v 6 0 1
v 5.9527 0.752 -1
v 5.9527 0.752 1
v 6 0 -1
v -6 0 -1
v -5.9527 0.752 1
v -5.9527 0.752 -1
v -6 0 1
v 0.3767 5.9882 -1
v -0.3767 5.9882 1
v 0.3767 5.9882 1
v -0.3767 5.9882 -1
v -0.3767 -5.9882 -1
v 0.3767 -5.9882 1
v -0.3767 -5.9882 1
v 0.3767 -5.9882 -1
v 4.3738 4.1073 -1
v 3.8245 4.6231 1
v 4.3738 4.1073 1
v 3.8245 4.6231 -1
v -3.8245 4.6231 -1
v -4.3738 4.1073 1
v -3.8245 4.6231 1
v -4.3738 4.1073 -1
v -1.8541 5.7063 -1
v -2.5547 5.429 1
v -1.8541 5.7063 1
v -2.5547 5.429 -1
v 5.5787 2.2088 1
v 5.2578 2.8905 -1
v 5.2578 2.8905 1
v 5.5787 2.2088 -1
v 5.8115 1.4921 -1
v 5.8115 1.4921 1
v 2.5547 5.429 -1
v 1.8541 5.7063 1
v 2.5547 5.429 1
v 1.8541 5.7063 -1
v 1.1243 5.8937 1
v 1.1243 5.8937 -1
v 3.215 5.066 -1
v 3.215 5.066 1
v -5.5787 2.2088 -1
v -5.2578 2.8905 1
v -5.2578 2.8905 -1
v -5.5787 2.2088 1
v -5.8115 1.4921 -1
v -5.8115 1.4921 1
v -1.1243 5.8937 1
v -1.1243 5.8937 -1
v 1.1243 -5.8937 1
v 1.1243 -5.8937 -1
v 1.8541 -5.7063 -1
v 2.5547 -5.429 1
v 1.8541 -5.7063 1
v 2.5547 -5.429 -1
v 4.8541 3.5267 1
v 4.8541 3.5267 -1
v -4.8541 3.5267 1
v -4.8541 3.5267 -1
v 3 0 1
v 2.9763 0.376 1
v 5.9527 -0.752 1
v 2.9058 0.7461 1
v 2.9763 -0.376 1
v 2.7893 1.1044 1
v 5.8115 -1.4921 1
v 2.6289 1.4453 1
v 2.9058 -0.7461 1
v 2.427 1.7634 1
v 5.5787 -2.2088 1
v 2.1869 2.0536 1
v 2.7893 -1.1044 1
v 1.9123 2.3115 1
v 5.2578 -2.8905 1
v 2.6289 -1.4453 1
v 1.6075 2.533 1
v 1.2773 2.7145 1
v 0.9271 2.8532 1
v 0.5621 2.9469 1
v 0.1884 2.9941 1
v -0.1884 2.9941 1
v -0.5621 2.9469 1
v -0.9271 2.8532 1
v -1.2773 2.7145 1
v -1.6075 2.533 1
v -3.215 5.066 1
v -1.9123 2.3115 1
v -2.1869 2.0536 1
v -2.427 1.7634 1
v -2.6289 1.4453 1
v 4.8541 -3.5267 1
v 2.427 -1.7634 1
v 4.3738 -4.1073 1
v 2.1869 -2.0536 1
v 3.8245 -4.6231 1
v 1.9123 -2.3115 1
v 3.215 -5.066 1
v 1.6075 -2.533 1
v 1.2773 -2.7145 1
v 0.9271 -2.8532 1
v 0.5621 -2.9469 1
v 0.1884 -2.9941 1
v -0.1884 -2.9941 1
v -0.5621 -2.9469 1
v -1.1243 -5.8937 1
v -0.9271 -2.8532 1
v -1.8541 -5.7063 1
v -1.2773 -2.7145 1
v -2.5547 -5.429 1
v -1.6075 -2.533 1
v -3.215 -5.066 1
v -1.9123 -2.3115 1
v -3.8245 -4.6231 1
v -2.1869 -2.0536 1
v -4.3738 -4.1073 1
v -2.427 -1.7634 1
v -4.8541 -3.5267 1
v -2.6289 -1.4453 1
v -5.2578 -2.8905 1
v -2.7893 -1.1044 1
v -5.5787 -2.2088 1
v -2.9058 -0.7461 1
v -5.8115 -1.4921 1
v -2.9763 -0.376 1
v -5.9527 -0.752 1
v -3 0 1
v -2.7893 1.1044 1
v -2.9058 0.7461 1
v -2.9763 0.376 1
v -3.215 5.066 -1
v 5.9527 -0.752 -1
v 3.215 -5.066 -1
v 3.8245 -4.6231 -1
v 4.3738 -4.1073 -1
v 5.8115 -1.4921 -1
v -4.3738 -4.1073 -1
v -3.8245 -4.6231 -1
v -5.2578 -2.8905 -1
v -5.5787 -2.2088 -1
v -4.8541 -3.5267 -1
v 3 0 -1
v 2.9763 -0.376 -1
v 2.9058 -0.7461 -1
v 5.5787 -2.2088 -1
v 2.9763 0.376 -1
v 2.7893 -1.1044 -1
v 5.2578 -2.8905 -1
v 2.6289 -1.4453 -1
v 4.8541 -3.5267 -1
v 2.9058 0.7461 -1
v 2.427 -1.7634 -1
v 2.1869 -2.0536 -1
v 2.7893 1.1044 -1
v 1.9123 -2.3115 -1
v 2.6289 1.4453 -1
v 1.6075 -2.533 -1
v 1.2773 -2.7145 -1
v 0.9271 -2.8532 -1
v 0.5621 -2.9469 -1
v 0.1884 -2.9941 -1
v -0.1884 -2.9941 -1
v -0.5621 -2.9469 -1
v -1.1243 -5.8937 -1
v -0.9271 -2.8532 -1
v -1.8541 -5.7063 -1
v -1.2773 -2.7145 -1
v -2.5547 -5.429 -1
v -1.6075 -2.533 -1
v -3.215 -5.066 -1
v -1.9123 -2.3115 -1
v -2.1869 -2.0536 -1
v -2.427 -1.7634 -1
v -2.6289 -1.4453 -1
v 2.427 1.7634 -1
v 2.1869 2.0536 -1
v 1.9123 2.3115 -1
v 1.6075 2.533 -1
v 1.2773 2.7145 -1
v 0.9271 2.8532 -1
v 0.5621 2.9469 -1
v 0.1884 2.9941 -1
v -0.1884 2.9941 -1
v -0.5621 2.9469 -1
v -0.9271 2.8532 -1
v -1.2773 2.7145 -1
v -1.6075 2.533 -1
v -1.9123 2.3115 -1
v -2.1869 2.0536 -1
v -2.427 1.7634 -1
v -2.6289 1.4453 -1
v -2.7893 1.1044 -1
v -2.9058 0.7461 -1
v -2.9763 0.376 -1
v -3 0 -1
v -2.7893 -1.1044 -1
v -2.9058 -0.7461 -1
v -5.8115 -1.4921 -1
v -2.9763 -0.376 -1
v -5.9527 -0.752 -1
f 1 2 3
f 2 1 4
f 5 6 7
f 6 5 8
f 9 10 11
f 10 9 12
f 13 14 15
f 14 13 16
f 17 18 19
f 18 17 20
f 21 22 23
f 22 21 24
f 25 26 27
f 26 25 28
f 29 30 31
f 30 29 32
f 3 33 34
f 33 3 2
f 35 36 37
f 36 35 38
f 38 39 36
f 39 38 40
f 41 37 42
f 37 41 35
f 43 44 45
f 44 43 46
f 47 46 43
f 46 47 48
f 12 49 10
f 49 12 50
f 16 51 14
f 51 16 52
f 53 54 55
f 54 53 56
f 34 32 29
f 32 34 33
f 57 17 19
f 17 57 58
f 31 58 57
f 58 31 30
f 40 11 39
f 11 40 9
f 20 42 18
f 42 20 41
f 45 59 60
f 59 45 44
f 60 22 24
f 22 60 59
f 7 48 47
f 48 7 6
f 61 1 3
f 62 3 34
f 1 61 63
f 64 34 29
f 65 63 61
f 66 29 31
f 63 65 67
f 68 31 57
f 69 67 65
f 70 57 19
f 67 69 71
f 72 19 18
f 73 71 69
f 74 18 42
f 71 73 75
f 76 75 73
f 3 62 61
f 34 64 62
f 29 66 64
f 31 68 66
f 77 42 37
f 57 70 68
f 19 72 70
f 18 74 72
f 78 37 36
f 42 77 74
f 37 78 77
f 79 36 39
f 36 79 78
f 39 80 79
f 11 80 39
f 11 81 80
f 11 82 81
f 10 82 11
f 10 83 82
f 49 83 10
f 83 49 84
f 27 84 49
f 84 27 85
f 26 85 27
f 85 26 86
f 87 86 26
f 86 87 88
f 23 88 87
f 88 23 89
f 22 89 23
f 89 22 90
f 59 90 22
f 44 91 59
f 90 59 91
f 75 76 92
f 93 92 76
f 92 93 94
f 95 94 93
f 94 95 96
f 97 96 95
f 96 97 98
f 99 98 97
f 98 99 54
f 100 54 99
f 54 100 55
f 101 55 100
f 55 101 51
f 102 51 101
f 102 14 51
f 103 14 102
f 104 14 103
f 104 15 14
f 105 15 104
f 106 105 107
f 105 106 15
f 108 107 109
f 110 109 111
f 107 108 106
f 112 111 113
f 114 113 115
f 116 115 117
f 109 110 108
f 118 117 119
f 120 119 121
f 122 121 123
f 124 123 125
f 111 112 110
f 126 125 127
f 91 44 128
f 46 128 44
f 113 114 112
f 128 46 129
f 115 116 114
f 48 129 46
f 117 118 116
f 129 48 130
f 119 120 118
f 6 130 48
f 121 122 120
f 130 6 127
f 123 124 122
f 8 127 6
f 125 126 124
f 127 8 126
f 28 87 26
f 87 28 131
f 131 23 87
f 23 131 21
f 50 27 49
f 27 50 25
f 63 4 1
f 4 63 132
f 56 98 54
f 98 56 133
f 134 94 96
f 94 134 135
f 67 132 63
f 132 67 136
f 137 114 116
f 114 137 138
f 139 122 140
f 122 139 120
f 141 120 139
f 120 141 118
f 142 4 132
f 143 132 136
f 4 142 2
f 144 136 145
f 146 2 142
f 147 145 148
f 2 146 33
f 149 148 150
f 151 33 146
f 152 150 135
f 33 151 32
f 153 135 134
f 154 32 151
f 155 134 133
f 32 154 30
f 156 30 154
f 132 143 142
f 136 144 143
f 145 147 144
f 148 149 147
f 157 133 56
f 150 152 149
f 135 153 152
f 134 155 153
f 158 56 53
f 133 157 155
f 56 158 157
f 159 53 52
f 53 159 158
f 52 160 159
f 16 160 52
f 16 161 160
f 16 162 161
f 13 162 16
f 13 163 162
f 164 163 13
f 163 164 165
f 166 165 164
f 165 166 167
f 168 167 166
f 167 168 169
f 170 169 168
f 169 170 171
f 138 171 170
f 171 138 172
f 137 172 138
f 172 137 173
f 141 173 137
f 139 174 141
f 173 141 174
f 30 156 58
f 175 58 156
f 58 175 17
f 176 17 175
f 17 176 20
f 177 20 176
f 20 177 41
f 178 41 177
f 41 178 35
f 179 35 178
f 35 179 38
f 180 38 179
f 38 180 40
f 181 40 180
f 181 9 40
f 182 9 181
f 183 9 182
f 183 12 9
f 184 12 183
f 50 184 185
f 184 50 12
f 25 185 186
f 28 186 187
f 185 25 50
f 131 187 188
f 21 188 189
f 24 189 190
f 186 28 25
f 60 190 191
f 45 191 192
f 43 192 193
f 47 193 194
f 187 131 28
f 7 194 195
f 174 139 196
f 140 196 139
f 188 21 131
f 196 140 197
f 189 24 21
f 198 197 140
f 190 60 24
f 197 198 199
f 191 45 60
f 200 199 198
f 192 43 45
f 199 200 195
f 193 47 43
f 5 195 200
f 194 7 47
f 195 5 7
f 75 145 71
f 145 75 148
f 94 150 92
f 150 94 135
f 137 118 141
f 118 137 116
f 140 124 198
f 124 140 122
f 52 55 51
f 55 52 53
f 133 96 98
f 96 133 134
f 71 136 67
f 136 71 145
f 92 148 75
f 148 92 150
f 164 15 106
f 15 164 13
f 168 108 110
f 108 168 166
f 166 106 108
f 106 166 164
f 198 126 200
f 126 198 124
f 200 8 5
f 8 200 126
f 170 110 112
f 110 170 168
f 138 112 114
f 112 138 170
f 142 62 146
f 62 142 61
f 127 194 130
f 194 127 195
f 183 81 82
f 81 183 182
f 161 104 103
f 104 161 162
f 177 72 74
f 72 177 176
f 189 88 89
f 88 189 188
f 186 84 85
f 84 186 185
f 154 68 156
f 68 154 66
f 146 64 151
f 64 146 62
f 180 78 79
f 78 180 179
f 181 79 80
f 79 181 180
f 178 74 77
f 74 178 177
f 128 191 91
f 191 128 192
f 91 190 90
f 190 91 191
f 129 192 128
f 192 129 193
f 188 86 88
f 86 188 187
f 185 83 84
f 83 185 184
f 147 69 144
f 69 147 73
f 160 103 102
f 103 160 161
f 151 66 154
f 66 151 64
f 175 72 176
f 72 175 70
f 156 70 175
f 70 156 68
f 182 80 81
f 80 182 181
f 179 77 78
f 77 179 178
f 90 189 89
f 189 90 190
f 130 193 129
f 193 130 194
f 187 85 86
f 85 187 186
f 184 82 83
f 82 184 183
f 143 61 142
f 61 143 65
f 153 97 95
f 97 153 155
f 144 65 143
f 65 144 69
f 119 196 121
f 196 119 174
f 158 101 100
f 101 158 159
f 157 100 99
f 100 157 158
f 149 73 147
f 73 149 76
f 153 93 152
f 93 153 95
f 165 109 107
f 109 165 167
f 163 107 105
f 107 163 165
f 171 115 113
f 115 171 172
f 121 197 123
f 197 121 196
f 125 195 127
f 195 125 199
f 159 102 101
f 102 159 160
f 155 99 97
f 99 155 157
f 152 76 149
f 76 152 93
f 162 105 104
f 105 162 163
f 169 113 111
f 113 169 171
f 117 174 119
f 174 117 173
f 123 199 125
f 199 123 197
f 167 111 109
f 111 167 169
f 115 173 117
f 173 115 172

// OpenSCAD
$fn = 50;


difference() {
	union() {
		translate(v = [0, 0, -1.0000000000]) {
			cylinder(h = 2, r = 6.0000000000);
		}
	}
	union() {
		translate(v = [0, 0, -100.0000000000]) {
			cylinder(h = 200, r = 3);
		}
	}
}
